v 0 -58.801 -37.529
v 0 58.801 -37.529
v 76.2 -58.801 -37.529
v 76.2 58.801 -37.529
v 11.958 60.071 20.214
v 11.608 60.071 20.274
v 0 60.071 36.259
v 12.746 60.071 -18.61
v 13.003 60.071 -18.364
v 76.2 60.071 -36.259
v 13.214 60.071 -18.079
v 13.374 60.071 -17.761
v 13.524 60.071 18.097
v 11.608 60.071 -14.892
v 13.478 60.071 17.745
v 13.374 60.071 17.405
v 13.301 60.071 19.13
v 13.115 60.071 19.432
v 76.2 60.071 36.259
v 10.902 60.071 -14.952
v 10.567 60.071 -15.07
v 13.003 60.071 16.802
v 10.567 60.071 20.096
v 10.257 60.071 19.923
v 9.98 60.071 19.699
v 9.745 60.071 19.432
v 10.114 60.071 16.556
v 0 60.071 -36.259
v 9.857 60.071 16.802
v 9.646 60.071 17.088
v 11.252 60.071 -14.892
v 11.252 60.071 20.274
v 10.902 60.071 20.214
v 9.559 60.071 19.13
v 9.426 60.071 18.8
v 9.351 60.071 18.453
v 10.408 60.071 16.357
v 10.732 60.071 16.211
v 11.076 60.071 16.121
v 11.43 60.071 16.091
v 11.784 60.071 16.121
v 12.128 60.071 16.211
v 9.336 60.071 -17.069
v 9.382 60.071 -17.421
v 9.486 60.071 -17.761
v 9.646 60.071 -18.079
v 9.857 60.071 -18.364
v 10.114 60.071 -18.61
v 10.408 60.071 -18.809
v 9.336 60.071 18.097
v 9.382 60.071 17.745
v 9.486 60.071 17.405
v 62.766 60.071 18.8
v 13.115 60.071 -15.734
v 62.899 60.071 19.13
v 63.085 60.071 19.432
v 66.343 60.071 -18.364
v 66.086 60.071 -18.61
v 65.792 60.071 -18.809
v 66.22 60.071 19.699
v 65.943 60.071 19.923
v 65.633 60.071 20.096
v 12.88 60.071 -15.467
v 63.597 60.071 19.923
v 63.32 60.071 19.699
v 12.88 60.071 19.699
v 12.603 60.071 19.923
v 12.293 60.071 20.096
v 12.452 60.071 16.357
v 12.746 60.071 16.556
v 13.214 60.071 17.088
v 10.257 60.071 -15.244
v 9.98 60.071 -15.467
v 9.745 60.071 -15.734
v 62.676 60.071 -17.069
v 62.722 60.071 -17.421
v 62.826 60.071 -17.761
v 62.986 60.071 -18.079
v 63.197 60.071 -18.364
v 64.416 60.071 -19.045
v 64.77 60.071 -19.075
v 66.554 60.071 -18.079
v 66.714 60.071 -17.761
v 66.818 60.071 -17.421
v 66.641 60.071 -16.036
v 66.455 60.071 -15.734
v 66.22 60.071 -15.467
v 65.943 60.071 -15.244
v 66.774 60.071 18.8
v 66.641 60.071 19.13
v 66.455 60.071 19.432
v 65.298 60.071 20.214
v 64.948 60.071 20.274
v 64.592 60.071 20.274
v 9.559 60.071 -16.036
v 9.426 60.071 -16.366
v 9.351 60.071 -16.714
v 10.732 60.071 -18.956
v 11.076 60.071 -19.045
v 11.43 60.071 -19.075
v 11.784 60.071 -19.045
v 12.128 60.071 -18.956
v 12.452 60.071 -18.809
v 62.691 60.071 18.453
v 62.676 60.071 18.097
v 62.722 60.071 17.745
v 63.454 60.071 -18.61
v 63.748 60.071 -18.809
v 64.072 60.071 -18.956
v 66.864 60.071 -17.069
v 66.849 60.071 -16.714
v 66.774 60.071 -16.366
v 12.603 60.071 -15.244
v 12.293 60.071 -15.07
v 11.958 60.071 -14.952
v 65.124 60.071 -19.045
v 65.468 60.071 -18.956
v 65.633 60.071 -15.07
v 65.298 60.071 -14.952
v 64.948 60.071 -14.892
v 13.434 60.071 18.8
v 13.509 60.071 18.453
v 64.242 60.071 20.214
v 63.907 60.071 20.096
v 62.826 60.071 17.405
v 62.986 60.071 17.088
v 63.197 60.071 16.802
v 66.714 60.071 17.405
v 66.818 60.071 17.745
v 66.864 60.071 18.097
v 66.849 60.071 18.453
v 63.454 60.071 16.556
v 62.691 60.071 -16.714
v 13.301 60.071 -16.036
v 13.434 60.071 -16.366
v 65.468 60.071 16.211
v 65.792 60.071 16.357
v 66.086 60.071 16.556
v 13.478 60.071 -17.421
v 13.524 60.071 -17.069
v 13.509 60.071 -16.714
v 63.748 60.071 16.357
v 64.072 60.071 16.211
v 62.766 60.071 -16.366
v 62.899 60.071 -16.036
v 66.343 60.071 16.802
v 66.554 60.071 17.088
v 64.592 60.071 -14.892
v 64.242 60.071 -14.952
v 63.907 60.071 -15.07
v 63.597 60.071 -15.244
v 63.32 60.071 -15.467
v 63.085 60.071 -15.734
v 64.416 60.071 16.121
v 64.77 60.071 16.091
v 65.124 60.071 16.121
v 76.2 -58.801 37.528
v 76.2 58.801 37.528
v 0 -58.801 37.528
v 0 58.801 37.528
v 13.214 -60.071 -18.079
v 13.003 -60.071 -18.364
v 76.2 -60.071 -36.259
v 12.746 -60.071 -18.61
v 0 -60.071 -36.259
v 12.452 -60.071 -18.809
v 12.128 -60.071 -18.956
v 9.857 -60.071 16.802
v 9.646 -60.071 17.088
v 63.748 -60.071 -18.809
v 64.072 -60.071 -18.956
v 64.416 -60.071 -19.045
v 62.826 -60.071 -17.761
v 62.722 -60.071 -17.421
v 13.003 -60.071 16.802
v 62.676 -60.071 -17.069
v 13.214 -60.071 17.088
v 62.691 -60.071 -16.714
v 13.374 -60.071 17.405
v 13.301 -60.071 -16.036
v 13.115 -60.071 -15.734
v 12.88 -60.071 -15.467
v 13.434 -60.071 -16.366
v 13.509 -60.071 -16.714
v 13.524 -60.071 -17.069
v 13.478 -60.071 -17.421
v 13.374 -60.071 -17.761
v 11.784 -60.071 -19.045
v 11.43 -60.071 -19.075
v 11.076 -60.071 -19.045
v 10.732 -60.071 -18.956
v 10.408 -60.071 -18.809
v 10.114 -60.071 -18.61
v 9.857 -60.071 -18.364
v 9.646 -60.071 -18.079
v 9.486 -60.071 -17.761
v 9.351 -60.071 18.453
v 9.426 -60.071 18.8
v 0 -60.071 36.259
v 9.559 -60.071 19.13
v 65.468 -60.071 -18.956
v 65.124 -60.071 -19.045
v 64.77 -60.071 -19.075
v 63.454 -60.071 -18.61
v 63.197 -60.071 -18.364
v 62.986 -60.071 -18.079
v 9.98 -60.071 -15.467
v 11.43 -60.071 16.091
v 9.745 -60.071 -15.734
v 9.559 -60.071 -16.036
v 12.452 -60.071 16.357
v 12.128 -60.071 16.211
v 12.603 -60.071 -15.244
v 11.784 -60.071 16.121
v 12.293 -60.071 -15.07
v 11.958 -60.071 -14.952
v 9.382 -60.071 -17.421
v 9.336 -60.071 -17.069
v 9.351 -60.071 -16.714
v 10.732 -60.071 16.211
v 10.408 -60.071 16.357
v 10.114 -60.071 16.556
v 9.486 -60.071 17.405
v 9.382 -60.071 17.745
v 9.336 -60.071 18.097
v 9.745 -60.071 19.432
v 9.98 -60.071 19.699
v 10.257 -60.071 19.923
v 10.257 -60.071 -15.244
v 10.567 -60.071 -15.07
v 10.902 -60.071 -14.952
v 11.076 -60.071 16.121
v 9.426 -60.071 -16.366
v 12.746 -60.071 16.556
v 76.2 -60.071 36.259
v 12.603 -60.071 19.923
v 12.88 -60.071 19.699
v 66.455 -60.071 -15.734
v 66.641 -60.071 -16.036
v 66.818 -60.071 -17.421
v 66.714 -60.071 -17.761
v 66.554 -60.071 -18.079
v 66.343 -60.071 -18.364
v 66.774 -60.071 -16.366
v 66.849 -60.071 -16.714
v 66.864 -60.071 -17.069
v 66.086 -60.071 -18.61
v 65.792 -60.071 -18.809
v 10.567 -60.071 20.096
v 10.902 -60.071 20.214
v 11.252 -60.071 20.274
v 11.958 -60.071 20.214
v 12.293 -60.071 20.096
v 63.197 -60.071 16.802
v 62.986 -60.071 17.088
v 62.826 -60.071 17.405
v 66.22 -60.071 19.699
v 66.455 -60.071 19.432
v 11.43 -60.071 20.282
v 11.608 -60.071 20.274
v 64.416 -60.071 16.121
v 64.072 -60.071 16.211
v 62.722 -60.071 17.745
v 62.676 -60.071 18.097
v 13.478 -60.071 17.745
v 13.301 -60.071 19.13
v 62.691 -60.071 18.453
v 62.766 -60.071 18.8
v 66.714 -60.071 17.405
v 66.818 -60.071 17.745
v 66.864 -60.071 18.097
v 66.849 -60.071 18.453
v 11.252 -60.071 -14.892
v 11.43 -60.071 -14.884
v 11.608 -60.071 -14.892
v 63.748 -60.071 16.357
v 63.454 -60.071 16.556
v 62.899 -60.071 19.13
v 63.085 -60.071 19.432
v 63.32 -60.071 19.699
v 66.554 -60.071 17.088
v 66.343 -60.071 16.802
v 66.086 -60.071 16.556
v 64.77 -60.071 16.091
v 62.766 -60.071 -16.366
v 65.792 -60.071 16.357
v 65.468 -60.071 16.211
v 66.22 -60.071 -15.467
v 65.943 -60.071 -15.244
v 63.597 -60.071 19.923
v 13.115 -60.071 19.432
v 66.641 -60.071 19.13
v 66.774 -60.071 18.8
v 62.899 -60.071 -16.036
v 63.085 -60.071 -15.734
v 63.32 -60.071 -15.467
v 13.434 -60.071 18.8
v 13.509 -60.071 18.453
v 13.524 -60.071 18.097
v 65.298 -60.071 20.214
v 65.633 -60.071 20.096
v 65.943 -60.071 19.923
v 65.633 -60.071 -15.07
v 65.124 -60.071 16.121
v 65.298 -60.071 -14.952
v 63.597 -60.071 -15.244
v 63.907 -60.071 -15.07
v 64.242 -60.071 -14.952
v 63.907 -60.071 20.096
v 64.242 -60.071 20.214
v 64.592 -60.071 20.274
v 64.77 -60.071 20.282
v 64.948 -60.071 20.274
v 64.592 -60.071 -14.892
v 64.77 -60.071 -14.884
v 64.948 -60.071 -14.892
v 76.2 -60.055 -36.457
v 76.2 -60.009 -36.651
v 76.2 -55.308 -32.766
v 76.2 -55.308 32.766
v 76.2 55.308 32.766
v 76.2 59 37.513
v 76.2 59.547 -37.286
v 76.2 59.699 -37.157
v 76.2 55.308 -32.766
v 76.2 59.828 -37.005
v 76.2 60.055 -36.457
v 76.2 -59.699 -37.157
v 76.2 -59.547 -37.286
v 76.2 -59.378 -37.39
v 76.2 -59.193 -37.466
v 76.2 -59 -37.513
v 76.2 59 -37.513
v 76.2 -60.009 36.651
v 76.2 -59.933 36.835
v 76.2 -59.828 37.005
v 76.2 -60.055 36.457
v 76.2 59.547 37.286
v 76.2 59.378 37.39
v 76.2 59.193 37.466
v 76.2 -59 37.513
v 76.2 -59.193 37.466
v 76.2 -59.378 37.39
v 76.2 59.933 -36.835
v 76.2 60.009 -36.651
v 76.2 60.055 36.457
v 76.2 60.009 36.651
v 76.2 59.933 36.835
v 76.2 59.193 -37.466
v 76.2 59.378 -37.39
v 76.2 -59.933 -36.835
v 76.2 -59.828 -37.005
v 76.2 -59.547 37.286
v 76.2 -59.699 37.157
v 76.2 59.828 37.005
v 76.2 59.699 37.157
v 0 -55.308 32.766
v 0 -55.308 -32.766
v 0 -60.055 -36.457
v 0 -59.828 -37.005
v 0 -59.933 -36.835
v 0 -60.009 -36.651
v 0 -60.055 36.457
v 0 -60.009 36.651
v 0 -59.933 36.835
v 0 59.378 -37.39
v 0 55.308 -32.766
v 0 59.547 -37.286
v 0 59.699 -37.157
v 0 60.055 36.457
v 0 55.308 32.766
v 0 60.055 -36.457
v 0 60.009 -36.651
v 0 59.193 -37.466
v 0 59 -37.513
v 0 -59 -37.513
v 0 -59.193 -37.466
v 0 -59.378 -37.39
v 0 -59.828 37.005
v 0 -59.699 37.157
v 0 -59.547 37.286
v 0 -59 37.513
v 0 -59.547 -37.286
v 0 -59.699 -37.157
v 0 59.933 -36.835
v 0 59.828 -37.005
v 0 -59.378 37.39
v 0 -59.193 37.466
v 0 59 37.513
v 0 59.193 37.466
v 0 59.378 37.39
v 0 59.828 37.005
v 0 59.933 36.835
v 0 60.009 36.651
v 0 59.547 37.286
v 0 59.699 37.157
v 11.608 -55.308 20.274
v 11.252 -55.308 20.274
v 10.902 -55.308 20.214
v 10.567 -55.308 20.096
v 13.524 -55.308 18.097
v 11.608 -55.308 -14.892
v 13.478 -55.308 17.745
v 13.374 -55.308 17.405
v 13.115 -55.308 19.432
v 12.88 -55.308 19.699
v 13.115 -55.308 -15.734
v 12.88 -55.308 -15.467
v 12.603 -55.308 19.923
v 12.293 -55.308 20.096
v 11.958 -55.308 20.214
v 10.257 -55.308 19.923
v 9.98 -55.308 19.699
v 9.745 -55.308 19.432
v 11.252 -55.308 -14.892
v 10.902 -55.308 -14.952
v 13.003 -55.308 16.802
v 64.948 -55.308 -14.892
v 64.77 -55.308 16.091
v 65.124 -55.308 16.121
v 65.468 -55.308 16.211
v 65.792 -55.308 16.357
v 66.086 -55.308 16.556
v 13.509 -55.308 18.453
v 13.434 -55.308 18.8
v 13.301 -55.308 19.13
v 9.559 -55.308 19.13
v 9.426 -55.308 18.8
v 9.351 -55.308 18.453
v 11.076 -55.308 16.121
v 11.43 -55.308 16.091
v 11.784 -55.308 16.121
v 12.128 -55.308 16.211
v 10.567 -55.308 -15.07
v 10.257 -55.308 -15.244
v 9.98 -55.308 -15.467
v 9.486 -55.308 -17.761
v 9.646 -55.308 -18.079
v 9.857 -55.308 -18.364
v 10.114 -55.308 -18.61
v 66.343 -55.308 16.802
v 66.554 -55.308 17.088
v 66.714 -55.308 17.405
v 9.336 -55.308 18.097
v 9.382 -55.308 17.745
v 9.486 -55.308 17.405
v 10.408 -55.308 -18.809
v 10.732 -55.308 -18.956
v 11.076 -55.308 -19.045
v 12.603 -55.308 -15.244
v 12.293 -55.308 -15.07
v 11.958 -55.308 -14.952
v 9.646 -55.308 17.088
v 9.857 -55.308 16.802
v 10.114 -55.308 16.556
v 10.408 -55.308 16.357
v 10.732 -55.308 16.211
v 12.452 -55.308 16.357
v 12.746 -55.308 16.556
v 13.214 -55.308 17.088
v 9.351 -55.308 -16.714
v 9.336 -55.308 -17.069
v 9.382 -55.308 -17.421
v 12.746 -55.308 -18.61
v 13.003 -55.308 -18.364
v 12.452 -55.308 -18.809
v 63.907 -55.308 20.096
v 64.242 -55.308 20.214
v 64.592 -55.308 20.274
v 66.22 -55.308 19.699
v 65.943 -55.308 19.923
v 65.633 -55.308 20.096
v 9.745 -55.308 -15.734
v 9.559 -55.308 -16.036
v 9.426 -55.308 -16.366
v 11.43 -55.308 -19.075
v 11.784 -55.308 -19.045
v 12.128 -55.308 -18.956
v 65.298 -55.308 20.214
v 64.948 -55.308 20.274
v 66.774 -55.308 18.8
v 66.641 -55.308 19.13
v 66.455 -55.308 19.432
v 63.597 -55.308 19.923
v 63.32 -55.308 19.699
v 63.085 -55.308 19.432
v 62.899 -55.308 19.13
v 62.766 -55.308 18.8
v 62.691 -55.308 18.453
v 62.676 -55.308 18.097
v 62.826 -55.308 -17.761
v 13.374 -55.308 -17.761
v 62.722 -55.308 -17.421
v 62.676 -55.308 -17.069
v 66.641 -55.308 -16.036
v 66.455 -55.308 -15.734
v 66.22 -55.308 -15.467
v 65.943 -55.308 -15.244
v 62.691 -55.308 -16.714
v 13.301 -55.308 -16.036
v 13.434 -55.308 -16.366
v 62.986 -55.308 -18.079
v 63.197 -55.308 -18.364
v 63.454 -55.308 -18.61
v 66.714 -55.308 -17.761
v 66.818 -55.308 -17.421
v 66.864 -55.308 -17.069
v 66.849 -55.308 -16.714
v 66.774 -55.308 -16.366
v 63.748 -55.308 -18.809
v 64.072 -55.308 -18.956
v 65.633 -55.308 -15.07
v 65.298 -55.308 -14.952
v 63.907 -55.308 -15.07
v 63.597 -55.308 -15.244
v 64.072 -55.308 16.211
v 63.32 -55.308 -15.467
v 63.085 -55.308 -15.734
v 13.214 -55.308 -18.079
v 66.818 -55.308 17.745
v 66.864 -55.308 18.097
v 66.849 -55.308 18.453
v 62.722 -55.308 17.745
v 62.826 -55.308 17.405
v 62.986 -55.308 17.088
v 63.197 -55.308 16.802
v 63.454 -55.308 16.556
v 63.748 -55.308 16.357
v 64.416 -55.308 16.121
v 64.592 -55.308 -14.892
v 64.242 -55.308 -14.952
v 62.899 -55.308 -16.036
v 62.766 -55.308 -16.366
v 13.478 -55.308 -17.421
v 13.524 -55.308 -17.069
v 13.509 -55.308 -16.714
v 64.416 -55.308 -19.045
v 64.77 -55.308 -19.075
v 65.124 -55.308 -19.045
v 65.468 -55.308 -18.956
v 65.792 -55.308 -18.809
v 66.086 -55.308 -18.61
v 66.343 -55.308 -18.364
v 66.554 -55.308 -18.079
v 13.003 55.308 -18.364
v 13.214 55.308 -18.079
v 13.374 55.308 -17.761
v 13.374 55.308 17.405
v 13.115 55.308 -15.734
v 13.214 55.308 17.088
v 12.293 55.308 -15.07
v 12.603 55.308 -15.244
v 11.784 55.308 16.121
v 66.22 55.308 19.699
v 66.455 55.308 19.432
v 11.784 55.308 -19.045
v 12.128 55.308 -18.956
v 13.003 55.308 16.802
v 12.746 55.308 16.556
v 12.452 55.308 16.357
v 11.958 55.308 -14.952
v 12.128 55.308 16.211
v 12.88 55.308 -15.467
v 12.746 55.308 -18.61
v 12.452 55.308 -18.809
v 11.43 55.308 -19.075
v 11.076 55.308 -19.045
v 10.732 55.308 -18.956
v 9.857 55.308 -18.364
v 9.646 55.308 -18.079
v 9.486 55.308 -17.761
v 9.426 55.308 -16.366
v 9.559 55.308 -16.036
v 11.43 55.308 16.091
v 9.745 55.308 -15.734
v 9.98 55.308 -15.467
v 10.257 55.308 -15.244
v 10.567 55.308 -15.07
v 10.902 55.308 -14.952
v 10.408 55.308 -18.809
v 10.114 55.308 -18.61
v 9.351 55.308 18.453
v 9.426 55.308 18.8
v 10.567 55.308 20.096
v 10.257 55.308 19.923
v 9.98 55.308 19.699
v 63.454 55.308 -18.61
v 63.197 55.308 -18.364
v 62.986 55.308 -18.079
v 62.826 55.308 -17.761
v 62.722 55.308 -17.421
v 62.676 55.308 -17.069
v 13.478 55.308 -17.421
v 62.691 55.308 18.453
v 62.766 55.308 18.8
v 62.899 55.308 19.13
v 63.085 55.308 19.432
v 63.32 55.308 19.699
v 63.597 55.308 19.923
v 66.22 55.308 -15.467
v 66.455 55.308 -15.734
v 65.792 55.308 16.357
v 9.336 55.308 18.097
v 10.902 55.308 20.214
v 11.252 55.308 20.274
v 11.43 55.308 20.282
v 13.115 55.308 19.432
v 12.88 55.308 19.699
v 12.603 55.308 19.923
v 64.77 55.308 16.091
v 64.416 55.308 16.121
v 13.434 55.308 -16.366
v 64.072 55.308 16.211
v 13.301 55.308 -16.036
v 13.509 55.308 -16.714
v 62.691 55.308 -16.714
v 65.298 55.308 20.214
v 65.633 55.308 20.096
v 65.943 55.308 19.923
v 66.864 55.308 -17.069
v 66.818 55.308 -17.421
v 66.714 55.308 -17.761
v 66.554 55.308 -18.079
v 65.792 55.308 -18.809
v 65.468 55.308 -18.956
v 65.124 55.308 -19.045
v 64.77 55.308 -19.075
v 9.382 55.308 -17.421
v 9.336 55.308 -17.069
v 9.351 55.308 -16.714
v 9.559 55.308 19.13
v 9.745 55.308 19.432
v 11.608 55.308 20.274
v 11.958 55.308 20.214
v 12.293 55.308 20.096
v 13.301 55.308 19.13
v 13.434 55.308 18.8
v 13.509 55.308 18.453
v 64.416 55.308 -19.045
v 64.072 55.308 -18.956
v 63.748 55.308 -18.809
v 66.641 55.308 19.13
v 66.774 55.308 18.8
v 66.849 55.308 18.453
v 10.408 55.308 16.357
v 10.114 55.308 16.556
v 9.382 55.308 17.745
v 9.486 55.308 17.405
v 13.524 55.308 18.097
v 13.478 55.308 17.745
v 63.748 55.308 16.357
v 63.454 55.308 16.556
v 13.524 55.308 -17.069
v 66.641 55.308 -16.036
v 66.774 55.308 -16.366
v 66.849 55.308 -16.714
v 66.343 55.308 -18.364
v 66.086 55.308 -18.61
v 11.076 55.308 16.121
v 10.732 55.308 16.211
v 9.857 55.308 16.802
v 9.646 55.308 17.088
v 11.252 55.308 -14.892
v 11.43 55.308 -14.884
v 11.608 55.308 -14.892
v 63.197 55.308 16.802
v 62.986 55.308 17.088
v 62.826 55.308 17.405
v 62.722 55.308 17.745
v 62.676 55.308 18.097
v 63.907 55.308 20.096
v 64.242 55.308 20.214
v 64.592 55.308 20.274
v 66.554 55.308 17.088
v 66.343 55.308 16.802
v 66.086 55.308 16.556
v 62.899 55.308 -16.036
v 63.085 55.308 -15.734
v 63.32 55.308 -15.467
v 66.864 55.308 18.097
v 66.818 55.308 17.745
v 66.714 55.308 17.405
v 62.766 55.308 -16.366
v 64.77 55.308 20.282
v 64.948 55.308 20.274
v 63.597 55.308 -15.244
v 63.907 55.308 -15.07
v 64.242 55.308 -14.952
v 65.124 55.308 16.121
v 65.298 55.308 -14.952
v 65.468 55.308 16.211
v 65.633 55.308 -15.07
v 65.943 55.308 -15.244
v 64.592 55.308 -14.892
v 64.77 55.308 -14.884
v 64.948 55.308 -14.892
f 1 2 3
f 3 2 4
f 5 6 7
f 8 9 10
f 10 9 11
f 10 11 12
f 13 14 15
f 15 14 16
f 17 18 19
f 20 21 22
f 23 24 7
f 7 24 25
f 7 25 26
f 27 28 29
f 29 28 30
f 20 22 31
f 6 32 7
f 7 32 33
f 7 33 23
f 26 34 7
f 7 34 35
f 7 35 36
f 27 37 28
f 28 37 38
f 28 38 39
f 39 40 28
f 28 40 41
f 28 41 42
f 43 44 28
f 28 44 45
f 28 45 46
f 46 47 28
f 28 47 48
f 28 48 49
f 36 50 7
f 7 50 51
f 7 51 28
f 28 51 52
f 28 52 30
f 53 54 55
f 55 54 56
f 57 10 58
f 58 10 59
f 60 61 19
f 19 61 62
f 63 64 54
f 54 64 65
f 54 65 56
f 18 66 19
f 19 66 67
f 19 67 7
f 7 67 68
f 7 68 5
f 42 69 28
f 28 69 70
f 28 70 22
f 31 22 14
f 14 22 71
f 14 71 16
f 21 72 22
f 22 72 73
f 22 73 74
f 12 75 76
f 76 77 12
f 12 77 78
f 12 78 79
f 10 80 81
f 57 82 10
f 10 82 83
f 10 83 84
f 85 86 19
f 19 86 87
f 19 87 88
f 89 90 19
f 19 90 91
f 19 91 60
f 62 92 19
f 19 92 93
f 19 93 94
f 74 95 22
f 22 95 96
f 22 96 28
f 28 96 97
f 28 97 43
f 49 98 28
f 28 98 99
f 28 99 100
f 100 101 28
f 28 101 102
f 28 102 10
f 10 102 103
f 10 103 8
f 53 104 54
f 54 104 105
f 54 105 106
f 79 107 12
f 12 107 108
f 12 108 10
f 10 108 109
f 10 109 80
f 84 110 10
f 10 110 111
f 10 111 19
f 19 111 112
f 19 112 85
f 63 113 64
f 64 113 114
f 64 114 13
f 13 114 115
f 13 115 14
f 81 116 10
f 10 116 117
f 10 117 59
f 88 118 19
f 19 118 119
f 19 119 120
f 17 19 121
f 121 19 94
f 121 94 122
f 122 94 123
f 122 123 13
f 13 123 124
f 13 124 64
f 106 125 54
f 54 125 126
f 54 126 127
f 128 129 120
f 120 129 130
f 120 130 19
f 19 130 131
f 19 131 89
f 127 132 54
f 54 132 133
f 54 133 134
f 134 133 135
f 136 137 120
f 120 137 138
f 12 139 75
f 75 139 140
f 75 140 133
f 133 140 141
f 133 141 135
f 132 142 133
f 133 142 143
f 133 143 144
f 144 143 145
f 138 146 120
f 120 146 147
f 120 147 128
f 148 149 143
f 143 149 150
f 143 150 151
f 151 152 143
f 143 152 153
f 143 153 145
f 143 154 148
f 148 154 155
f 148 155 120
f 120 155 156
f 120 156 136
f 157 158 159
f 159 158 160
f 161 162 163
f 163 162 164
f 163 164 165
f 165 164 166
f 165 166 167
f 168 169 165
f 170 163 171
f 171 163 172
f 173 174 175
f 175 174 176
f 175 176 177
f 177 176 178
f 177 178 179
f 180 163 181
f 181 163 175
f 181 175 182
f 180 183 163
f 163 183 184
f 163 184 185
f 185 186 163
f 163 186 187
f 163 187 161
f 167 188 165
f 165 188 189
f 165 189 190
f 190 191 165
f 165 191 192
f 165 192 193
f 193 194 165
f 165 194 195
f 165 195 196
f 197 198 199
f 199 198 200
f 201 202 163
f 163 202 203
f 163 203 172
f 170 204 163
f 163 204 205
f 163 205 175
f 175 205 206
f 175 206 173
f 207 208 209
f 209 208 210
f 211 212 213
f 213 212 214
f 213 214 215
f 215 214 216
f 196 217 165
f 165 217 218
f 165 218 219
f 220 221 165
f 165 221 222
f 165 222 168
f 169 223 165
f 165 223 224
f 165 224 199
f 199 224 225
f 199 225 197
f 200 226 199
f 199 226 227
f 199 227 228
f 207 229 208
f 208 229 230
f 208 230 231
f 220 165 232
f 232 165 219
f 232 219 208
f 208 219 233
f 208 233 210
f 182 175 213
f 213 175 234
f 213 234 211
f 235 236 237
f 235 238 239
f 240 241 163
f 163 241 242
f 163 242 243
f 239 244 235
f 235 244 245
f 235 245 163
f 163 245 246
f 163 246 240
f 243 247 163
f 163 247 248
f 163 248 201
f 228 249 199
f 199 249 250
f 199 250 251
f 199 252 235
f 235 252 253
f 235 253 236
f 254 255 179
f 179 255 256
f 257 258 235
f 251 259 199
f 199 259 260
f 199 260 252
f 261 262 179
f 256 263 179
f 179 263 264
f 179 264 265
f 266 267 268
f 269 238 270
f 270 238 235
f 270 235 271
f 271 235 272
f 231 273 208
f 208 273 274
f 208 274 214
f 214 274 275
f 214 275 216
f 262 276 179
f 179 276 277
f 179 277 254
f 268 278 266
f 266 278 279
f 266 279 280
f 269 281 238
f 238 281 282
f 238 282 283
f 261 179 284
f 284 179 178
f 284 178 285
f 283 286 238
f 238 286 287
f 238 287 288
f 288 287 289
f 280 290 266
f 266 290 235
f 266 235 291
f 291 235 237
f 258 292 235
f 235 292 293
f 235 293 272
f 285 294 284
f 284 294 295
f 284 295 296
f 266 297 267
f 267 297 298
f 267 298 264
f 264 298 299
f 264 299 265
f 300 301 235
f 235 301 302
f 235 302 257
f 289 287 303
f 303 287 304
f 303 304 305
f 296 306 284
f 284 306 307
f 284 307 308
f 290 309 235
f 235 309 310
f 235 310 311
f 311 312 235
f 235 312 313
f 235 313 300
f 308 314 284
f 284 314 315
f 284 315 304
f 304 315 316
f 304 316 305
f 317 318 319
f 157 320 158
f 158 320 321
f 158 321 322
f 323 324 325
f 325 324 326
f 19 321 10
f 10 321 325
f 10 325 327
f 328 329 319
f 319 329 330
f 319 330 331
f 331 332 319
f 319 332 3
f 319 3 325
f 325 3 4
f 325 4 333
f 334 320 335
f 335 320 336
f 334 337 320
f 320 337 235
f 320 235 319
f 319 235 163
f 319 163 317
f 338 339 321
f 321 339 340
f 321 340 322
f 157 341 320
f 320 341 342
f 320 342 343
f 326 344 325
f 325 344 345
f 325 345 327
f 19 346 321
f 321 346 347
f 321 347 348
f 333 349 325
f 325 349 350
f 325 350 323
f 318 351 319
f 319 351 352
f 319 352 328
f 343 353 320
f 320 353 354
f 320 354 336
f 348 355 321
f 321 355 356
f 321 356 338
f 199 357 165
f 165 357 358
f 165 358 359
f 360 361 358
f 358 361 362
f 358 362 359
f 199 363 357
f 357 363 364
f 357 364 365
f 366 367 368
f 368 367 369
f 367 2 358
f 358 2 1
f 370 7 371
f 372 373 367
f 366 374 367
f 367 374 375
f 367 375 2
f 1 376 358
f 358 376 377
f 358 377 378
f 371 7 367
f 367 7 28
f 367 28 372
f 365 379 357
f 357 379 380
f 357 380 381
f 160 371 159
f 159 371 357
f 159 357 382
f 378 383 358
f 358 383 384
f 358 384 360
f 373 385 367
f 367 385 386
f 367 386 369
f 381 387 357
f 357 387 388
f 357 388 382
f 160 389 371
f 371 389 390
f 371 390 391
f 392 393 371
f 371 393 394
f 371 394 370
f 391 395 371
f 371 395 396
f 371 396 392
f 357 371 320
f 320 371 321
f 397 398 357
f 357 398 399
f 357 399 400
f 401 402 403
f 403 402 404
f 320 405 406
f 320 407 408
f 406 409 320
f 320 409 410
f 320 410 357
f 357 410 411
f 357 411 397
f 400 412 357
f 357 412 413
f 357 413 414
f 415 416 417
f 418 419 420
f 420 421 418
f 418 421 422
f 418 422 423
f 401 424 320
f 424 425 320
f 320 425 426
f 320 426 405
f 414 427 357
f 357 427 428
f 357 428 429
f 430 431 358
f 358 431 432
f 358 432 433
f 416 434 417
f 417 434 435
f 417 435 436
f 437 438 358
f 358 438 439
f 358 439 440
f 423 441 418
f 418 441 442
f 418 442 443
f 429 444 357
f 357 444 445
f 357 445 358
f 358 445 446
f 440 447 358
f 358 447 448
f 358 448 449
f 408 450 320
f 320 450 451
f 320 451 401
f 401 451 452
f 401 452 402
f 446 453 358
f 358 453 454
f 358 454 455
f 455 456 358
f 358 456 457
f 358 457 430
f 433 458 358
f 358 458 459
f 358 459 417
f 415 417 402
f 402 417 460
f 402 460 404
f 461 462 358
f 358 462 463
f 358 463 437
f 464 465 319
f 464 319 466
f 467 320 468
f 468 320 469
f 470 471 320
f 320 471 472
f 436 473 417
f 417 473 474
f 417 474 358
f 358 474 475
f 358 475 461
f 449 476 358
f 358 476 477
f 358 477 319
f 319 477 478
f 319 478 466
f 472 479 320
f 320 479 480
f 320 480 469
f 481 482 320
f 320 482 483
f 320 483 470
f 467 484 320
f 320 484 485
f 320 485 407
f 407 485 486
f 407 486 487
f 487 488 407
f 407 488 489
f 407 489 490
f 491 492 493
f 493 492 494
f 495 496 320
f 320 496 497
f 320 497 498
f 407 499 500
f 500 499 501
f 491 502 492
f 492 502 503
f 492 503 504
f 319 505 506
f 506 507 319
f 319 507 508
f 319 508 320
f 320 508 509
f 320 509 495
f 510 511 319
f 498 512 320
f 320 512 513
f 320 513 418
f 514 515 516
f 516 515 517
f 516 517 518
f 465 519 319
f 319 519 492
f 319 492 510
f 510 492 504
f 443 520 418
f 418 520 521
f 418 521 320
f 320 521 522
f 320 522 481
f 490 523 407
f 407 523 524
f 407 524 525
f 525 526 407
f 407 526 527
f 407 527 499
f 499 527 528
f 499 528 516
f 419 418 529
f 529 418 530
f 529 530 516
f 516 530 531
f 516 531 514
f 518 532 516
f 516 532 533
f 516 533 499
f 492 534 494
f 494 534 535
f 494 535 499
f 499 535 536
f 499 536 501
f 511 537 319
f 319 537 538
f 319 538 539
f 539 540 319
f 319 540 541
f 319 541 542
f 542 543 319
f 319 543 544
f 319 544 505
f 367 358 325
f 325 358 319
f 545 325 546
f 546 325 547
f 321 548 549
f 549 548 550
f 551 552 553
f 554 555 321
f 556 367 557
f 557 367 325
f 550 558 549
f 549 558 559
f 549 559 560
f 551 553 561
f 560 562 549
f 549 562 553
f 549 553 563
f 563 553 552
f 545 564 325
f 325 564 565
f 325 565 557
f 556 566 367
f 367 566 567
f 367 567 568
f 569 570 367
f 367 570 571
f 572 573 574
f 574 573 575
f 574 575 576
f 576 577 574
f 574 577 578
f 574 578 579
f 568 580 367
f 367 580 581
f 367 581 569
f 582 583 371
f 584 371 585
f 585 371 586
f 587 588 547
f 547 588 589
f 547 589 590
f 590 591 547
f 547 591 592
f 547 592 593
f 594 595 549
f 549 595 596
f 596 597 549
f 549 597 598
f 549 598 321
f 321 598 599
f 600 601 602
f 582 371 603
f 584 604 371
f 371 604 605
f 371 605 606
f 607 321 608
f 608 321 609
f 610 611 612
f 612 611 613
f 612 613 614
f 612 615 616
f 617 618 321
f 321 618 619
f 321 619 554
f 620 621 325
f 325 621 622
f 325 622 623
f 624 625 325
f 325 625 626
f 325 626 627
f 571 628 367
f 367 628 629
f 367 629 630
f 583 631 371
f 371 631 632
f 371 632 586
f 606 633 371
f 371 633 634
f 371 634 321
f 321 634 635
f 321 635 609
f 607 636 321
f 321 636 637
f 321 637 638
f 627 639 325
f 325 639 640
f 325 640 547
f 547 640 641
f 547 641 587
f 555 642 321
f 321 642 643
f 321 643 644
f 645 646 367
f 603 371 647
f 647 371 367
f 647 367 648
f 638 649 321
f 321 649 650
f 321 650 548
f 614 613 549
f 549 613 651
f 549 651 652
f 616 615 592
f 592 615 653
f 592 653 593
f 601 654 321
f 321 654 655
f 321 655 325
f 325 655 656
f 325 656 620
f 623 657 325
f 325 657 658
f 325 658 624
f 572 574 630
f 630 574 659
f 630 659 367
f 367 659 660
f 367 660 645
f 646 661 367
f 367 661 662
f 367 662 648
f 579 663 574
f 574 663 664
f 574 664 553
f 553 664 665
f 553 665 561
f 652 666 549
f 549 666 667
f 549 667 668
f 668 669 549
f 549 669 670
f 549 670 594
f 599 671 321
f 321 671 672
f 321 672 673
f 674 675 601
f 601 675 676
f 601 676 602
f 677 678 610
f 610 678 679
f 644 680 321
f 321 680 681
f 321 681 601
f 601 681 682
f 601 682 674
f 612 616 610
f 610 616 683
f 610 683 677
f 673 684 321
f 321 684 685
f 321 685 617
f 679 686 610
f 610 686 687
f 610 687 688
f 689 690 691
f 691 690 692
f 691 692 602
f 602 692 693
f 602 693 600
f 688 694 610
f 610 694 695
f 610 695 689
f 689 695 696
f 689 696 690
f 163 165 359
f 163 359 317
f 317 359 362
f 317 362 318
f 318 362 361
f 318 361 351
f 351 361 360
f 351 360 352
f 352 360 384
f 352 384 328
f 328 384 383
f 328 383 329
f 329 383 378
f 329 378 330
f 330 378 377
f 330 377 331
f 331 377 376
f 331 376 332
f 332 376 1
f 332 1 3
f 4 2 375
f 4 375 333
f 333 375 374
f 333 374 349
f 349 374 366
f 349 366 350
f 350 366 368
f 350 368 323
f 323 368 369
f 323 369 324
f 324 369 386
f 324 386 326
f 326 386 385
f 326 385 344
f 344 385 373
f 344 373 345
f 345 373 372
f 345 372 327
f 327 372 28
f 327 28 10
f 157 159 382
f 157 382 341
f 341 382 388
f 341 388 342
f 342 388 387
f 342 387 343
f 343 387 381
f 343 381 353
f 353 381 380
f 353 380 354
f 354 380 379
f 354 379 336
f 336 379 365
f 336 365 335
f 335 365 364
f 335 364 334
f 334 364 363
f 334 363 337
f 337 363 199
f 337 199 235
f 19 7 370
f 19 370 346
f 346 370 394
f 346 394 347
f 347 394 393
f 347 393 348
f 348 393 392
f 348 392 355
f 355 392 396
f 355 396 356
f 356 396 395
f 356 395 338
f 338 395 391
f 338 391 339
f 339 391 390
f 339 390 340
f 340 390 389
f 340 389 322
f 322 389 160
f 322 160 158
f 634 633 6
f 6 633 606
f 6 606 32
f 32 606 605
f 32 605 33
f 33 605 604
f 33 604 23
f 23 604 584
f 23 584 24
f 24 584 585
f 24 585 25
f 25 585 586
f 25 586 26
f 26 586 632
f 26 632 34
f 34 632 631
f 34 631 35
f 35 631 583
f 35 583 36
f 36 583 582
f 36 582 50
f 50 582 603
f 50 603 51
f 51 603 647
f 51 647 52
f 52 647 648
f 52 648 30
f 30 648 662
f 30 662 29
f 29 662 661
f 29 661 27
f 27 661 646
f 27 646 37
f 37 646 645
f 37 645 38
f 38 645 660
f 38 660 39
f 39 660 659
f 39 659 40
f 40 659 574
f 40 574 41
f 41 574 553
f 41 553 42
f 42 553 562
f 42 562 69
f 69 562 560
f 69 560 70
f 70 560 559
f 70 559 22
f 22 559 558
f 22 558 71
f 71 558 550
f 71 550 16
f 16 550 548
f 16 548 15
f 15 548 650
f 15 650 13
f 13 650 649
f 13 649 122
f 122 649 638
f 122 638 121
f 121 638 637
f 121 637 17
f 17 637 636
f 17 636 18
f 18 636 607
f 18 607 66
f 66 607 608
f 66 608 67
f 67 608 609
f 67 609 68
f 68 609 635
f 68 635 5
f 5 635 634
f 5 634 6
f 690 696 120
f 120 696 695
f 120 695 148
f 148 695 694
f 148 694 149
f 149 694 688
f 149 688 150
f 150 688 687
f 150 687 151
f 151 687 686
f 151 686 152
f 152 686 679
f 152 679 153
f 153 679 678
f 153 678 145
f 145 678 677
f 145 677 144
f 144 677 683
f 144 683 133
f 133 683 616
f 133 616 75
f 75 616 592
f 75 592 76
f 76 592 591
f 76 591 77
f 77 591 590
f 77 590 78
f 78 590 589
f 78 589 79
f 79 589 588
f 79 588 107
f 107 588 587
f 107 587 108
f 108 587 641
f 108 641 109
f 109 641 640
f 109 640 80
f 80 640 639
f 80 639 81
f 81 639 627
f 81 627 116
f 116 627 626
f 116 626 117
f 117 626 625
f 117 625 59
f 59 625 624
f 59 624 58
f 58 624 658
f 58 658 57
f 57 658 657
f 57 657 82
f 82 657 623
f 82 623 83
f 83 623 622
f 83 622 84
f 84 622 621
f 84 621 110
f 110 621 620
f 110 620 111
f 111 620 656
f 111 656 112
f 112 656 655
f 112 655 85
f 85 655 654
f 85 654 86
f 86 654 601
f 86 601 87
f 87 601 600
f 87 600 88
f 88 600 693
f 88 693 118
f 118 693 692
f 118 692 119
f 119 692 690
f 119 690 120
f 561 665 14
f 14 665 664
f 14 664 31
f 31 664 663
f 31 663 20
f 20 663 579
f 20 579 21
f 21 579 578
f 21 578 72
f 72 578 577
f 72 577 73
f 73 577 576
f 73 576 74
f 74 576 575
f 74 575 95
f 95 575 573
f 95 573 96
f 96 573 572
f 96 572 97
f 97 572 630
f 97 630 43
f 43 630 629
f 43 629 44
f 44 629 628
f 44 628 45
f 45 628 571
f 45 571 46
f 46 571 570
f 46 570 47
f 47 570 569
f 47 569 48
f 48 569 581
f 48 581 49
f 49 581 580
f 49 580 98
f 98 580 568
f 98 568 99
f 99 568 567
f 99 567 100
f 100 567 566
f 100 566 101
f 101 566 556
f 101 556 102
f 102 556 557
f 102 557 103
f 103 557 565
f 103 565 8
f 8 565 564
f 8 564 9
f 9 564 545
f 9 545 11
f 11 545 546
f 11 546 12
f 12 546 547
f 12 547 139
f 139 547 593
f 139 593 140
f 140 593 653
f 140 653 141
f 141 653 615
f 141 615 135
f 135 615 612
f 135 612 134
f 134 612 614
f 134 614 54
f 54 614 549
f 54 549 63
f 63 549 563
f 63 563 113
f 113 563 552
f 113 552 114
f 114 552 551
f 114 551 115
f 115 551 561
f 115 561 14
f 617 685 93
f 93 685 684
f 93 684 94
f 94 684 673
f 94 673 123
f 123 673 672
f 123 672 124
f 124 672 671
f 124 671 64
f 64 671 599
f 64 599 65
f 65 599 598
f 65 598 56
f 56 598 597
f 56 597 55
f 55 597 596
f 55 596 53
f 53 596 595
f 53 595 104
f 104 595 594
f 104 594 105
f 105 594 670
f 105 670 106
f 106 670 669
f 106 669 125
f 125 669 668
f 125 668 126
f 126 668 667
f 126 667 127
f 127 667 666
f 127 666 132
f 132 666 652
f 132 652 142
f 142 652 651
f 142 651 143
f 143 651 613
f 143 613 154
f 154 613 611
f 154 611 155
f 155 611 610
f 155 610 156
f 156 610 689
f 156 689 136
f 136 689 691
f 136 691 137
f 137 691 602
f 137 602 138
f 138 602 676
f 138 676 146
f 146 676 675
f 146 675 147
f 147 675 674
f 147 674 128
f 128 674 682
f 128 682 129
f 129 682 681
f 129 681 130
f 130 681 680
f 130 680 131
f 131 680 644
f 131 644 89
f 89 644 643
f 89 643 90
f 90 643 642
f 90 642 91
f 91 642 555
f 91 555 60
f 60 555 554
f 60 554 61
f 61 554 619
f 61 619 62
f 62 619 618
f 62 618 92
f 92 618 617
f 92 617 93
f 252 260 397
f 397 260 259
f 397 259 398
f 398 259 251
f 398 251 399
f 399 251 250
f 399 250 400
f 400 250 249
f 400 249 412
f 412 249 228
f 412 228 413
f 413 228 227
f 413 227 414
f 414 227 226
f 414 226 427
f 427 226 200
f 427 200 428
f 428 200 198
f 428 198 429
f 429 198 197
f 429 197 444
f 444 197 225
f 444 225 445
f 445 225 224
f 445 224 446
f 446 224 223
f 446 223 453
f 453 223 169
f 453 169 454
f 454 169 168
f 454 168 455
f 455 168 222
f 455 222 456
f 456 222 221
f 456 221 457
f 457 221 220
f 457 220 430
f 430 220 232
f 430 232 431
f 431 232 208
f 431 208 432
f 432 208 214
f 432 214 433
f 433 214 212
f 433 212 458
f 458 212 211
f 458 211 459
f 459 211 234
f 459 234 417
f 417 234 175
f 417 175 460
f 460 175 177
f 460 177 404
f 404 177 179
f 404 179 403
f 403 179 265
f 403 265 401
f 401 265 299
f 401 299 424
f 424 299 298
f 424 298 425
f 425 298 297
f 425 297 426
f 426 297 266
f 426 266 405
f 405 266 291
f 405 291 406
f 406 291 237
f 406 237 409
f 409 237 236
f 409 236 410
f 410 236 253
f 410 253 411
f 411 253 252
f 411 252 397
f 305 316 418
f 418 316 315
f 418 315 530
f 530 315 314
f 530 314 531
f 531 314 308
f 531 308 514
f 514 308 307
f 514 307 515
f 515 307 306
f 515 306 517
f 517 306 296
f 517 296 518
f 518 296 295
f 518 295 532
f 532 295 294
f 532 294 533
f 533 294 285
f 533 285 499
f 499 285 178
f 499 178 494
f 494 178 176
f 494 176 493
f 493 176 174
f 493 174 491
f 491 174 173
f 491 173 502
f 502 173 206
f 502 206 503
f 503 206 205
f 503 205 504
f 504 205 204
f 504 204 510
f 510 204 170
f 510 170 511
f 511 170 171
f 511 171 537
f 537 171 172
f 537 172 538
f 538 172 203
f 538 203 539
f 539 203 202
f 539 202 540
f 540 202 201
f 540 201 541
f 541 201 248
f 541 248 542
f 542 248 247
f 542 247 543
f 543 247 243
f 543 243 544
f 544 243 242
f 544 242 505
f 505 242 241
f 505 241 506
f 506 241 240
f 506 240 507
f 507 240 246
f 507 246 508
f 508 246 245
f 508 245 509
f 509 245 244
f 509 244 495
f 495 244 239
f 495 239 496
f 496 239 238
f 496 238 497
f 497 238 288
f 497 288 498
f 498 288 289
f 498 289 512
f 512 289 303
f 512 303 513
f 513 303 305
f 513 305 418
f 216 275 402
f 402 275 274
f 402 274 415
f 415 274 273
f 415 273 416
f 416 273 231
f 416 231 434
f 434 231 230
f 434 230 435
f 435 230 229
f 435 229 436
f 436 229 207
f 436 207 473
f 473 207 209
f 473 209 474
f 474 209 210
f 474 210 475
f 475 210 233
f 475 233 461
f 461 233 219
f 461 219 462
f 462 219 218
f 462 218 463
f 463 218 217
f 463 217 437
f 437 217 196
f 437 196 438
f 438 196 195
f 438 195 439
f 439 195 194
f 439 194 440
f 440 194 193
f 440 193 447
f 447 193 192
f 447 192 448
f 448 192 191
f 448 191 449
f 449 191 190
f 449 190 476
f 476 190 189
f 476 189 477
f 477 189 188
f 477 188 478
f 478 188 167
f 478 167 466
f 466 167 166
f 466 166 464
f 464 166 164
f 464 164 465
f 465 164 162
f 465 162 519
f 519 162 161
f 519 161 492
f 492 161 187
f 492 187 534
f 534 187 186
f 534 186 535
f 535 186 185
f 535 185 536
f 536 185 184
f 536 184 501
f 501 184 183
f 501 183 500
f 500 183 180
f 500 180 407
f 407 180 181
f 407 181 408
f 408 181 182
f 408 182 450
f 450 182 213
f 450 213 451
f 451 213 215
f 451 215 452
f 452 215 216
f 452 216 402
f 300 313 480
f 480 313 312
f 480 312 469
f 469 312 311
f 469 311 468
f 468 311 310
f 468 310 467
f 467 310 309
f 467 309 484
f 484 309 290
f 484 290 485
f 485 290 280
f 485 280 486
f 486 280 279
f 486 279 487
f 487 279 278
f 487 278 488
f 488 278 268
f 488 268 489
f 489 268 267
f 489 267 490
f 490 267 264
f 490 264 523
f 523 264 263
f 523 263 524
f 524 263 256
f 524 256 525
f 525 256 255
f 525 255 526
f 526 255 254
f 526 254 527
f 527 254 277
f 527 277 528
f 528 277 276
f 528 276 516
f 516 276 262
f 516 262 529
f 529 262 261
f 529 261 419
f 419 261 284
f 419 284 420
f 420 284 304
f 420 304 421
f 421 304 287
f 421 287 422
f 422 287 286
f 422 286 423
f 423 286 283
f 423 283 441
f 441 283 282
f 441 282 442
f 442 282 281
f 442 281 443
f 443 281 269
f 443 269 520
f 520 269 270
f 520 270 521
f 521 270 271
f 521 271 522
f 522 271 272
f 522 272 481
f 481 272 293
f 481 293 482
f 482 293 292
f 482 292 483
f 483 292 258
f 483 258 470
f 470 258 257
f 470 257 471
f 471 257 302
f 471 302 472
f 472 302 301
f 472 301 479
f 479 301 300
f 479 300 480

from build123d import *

# Parameters (mm, degrees)
SKETCH2_W               = 75.057
SKETCH2_H               = 120.142
BOSS_EXTRUDE1_DEPTH     = 76.2
CUT_EXTRUDE1_REACH      = 106.035
SKETCH6_W               = 65.532
SKETCH6_H               = 110.617
FILLET1_R               = 1.27
CUT_EXTRUDE3_DEPTH      = 148.135748465
CUT_EXTRUDE3_DEPTH_BACK = 148.135748465
SKETCH7_R               = 2.0955


with BuildPart() as part:
    # Sketch2 → Boss-Extrude1 (new body)
    with BuildSketch(Plane(origin=(0, 0, 0), x_dir=(0, 0, -1), z_dir=(1, 0, 0))):
        Rectangle(SKETCH2_W, SKETCH2_H)
    extrude(amount=BOSS_EXTRUDE1_DEPTH)

    # Sketch6 → Cut-Extrude1 (cut, up to next)
    with BuildSketch(Plane.ZY, mode=Mode.PRIVATE) as cut_extrude1_sk1:
        Rectangle(SKETCH6_W, SKETCH6_H)
    cut_extrude1_tool1 = extrude(cut_extrude1_sk1.sketch, amount=-CUT_EXTRUDE1_REACH, mode=Mode.PRIVATE) & part.part
    add(cut_extrude1_tool1.solids().sort_by_distance((0, 0, 0))[0], mode=Mode.SUBTRACT)

    # Fillet1
    fillet1_edges = [part.edges().sort_by_distance(p)[0] for p in [
        (38.1, -60.071, -37.5285),
        (38.1, -60.071, 37.5285),
        (38.1, 60.071, 37.5285),
        (38.1, 60.071, -37.5285),
    ]]
    fillet(fillet1_edges, radius=FILLET1_R)

    # Sketch7 → Cut-Extrude3 (cut, two sides: drawn at the far end of the back side and taken through both)
    with BuildSketch(Plane.XZ.offset(60.071).offset(-CUT_EXTRUDE3_DEPTH_BACK)):
        with Locations(Location((11.43, 18.1864, 0), (0, 0, 270))):
            Circle(SKETCH7_R)
        with Locations(Location((64.77, 18.1864, 0), (0, 0, 270))):
            Circle(SKETCH7_R)
        with Locations(Location((11.43, -16.9799, 0), (0, 0, 270))):
            Circle(SKETCH7_R)
        with Locations(Location((64.77, -16.9799, 0), (0, 0, 270))):
            Circle(SKETCH7_R)
    extrude(amount=CUT_EXTRUDE3_DEPTH + CUT_EXTRUDE3_DEPTH_BACK, mode=Mode.SUBTRACT)


solid = part.part
